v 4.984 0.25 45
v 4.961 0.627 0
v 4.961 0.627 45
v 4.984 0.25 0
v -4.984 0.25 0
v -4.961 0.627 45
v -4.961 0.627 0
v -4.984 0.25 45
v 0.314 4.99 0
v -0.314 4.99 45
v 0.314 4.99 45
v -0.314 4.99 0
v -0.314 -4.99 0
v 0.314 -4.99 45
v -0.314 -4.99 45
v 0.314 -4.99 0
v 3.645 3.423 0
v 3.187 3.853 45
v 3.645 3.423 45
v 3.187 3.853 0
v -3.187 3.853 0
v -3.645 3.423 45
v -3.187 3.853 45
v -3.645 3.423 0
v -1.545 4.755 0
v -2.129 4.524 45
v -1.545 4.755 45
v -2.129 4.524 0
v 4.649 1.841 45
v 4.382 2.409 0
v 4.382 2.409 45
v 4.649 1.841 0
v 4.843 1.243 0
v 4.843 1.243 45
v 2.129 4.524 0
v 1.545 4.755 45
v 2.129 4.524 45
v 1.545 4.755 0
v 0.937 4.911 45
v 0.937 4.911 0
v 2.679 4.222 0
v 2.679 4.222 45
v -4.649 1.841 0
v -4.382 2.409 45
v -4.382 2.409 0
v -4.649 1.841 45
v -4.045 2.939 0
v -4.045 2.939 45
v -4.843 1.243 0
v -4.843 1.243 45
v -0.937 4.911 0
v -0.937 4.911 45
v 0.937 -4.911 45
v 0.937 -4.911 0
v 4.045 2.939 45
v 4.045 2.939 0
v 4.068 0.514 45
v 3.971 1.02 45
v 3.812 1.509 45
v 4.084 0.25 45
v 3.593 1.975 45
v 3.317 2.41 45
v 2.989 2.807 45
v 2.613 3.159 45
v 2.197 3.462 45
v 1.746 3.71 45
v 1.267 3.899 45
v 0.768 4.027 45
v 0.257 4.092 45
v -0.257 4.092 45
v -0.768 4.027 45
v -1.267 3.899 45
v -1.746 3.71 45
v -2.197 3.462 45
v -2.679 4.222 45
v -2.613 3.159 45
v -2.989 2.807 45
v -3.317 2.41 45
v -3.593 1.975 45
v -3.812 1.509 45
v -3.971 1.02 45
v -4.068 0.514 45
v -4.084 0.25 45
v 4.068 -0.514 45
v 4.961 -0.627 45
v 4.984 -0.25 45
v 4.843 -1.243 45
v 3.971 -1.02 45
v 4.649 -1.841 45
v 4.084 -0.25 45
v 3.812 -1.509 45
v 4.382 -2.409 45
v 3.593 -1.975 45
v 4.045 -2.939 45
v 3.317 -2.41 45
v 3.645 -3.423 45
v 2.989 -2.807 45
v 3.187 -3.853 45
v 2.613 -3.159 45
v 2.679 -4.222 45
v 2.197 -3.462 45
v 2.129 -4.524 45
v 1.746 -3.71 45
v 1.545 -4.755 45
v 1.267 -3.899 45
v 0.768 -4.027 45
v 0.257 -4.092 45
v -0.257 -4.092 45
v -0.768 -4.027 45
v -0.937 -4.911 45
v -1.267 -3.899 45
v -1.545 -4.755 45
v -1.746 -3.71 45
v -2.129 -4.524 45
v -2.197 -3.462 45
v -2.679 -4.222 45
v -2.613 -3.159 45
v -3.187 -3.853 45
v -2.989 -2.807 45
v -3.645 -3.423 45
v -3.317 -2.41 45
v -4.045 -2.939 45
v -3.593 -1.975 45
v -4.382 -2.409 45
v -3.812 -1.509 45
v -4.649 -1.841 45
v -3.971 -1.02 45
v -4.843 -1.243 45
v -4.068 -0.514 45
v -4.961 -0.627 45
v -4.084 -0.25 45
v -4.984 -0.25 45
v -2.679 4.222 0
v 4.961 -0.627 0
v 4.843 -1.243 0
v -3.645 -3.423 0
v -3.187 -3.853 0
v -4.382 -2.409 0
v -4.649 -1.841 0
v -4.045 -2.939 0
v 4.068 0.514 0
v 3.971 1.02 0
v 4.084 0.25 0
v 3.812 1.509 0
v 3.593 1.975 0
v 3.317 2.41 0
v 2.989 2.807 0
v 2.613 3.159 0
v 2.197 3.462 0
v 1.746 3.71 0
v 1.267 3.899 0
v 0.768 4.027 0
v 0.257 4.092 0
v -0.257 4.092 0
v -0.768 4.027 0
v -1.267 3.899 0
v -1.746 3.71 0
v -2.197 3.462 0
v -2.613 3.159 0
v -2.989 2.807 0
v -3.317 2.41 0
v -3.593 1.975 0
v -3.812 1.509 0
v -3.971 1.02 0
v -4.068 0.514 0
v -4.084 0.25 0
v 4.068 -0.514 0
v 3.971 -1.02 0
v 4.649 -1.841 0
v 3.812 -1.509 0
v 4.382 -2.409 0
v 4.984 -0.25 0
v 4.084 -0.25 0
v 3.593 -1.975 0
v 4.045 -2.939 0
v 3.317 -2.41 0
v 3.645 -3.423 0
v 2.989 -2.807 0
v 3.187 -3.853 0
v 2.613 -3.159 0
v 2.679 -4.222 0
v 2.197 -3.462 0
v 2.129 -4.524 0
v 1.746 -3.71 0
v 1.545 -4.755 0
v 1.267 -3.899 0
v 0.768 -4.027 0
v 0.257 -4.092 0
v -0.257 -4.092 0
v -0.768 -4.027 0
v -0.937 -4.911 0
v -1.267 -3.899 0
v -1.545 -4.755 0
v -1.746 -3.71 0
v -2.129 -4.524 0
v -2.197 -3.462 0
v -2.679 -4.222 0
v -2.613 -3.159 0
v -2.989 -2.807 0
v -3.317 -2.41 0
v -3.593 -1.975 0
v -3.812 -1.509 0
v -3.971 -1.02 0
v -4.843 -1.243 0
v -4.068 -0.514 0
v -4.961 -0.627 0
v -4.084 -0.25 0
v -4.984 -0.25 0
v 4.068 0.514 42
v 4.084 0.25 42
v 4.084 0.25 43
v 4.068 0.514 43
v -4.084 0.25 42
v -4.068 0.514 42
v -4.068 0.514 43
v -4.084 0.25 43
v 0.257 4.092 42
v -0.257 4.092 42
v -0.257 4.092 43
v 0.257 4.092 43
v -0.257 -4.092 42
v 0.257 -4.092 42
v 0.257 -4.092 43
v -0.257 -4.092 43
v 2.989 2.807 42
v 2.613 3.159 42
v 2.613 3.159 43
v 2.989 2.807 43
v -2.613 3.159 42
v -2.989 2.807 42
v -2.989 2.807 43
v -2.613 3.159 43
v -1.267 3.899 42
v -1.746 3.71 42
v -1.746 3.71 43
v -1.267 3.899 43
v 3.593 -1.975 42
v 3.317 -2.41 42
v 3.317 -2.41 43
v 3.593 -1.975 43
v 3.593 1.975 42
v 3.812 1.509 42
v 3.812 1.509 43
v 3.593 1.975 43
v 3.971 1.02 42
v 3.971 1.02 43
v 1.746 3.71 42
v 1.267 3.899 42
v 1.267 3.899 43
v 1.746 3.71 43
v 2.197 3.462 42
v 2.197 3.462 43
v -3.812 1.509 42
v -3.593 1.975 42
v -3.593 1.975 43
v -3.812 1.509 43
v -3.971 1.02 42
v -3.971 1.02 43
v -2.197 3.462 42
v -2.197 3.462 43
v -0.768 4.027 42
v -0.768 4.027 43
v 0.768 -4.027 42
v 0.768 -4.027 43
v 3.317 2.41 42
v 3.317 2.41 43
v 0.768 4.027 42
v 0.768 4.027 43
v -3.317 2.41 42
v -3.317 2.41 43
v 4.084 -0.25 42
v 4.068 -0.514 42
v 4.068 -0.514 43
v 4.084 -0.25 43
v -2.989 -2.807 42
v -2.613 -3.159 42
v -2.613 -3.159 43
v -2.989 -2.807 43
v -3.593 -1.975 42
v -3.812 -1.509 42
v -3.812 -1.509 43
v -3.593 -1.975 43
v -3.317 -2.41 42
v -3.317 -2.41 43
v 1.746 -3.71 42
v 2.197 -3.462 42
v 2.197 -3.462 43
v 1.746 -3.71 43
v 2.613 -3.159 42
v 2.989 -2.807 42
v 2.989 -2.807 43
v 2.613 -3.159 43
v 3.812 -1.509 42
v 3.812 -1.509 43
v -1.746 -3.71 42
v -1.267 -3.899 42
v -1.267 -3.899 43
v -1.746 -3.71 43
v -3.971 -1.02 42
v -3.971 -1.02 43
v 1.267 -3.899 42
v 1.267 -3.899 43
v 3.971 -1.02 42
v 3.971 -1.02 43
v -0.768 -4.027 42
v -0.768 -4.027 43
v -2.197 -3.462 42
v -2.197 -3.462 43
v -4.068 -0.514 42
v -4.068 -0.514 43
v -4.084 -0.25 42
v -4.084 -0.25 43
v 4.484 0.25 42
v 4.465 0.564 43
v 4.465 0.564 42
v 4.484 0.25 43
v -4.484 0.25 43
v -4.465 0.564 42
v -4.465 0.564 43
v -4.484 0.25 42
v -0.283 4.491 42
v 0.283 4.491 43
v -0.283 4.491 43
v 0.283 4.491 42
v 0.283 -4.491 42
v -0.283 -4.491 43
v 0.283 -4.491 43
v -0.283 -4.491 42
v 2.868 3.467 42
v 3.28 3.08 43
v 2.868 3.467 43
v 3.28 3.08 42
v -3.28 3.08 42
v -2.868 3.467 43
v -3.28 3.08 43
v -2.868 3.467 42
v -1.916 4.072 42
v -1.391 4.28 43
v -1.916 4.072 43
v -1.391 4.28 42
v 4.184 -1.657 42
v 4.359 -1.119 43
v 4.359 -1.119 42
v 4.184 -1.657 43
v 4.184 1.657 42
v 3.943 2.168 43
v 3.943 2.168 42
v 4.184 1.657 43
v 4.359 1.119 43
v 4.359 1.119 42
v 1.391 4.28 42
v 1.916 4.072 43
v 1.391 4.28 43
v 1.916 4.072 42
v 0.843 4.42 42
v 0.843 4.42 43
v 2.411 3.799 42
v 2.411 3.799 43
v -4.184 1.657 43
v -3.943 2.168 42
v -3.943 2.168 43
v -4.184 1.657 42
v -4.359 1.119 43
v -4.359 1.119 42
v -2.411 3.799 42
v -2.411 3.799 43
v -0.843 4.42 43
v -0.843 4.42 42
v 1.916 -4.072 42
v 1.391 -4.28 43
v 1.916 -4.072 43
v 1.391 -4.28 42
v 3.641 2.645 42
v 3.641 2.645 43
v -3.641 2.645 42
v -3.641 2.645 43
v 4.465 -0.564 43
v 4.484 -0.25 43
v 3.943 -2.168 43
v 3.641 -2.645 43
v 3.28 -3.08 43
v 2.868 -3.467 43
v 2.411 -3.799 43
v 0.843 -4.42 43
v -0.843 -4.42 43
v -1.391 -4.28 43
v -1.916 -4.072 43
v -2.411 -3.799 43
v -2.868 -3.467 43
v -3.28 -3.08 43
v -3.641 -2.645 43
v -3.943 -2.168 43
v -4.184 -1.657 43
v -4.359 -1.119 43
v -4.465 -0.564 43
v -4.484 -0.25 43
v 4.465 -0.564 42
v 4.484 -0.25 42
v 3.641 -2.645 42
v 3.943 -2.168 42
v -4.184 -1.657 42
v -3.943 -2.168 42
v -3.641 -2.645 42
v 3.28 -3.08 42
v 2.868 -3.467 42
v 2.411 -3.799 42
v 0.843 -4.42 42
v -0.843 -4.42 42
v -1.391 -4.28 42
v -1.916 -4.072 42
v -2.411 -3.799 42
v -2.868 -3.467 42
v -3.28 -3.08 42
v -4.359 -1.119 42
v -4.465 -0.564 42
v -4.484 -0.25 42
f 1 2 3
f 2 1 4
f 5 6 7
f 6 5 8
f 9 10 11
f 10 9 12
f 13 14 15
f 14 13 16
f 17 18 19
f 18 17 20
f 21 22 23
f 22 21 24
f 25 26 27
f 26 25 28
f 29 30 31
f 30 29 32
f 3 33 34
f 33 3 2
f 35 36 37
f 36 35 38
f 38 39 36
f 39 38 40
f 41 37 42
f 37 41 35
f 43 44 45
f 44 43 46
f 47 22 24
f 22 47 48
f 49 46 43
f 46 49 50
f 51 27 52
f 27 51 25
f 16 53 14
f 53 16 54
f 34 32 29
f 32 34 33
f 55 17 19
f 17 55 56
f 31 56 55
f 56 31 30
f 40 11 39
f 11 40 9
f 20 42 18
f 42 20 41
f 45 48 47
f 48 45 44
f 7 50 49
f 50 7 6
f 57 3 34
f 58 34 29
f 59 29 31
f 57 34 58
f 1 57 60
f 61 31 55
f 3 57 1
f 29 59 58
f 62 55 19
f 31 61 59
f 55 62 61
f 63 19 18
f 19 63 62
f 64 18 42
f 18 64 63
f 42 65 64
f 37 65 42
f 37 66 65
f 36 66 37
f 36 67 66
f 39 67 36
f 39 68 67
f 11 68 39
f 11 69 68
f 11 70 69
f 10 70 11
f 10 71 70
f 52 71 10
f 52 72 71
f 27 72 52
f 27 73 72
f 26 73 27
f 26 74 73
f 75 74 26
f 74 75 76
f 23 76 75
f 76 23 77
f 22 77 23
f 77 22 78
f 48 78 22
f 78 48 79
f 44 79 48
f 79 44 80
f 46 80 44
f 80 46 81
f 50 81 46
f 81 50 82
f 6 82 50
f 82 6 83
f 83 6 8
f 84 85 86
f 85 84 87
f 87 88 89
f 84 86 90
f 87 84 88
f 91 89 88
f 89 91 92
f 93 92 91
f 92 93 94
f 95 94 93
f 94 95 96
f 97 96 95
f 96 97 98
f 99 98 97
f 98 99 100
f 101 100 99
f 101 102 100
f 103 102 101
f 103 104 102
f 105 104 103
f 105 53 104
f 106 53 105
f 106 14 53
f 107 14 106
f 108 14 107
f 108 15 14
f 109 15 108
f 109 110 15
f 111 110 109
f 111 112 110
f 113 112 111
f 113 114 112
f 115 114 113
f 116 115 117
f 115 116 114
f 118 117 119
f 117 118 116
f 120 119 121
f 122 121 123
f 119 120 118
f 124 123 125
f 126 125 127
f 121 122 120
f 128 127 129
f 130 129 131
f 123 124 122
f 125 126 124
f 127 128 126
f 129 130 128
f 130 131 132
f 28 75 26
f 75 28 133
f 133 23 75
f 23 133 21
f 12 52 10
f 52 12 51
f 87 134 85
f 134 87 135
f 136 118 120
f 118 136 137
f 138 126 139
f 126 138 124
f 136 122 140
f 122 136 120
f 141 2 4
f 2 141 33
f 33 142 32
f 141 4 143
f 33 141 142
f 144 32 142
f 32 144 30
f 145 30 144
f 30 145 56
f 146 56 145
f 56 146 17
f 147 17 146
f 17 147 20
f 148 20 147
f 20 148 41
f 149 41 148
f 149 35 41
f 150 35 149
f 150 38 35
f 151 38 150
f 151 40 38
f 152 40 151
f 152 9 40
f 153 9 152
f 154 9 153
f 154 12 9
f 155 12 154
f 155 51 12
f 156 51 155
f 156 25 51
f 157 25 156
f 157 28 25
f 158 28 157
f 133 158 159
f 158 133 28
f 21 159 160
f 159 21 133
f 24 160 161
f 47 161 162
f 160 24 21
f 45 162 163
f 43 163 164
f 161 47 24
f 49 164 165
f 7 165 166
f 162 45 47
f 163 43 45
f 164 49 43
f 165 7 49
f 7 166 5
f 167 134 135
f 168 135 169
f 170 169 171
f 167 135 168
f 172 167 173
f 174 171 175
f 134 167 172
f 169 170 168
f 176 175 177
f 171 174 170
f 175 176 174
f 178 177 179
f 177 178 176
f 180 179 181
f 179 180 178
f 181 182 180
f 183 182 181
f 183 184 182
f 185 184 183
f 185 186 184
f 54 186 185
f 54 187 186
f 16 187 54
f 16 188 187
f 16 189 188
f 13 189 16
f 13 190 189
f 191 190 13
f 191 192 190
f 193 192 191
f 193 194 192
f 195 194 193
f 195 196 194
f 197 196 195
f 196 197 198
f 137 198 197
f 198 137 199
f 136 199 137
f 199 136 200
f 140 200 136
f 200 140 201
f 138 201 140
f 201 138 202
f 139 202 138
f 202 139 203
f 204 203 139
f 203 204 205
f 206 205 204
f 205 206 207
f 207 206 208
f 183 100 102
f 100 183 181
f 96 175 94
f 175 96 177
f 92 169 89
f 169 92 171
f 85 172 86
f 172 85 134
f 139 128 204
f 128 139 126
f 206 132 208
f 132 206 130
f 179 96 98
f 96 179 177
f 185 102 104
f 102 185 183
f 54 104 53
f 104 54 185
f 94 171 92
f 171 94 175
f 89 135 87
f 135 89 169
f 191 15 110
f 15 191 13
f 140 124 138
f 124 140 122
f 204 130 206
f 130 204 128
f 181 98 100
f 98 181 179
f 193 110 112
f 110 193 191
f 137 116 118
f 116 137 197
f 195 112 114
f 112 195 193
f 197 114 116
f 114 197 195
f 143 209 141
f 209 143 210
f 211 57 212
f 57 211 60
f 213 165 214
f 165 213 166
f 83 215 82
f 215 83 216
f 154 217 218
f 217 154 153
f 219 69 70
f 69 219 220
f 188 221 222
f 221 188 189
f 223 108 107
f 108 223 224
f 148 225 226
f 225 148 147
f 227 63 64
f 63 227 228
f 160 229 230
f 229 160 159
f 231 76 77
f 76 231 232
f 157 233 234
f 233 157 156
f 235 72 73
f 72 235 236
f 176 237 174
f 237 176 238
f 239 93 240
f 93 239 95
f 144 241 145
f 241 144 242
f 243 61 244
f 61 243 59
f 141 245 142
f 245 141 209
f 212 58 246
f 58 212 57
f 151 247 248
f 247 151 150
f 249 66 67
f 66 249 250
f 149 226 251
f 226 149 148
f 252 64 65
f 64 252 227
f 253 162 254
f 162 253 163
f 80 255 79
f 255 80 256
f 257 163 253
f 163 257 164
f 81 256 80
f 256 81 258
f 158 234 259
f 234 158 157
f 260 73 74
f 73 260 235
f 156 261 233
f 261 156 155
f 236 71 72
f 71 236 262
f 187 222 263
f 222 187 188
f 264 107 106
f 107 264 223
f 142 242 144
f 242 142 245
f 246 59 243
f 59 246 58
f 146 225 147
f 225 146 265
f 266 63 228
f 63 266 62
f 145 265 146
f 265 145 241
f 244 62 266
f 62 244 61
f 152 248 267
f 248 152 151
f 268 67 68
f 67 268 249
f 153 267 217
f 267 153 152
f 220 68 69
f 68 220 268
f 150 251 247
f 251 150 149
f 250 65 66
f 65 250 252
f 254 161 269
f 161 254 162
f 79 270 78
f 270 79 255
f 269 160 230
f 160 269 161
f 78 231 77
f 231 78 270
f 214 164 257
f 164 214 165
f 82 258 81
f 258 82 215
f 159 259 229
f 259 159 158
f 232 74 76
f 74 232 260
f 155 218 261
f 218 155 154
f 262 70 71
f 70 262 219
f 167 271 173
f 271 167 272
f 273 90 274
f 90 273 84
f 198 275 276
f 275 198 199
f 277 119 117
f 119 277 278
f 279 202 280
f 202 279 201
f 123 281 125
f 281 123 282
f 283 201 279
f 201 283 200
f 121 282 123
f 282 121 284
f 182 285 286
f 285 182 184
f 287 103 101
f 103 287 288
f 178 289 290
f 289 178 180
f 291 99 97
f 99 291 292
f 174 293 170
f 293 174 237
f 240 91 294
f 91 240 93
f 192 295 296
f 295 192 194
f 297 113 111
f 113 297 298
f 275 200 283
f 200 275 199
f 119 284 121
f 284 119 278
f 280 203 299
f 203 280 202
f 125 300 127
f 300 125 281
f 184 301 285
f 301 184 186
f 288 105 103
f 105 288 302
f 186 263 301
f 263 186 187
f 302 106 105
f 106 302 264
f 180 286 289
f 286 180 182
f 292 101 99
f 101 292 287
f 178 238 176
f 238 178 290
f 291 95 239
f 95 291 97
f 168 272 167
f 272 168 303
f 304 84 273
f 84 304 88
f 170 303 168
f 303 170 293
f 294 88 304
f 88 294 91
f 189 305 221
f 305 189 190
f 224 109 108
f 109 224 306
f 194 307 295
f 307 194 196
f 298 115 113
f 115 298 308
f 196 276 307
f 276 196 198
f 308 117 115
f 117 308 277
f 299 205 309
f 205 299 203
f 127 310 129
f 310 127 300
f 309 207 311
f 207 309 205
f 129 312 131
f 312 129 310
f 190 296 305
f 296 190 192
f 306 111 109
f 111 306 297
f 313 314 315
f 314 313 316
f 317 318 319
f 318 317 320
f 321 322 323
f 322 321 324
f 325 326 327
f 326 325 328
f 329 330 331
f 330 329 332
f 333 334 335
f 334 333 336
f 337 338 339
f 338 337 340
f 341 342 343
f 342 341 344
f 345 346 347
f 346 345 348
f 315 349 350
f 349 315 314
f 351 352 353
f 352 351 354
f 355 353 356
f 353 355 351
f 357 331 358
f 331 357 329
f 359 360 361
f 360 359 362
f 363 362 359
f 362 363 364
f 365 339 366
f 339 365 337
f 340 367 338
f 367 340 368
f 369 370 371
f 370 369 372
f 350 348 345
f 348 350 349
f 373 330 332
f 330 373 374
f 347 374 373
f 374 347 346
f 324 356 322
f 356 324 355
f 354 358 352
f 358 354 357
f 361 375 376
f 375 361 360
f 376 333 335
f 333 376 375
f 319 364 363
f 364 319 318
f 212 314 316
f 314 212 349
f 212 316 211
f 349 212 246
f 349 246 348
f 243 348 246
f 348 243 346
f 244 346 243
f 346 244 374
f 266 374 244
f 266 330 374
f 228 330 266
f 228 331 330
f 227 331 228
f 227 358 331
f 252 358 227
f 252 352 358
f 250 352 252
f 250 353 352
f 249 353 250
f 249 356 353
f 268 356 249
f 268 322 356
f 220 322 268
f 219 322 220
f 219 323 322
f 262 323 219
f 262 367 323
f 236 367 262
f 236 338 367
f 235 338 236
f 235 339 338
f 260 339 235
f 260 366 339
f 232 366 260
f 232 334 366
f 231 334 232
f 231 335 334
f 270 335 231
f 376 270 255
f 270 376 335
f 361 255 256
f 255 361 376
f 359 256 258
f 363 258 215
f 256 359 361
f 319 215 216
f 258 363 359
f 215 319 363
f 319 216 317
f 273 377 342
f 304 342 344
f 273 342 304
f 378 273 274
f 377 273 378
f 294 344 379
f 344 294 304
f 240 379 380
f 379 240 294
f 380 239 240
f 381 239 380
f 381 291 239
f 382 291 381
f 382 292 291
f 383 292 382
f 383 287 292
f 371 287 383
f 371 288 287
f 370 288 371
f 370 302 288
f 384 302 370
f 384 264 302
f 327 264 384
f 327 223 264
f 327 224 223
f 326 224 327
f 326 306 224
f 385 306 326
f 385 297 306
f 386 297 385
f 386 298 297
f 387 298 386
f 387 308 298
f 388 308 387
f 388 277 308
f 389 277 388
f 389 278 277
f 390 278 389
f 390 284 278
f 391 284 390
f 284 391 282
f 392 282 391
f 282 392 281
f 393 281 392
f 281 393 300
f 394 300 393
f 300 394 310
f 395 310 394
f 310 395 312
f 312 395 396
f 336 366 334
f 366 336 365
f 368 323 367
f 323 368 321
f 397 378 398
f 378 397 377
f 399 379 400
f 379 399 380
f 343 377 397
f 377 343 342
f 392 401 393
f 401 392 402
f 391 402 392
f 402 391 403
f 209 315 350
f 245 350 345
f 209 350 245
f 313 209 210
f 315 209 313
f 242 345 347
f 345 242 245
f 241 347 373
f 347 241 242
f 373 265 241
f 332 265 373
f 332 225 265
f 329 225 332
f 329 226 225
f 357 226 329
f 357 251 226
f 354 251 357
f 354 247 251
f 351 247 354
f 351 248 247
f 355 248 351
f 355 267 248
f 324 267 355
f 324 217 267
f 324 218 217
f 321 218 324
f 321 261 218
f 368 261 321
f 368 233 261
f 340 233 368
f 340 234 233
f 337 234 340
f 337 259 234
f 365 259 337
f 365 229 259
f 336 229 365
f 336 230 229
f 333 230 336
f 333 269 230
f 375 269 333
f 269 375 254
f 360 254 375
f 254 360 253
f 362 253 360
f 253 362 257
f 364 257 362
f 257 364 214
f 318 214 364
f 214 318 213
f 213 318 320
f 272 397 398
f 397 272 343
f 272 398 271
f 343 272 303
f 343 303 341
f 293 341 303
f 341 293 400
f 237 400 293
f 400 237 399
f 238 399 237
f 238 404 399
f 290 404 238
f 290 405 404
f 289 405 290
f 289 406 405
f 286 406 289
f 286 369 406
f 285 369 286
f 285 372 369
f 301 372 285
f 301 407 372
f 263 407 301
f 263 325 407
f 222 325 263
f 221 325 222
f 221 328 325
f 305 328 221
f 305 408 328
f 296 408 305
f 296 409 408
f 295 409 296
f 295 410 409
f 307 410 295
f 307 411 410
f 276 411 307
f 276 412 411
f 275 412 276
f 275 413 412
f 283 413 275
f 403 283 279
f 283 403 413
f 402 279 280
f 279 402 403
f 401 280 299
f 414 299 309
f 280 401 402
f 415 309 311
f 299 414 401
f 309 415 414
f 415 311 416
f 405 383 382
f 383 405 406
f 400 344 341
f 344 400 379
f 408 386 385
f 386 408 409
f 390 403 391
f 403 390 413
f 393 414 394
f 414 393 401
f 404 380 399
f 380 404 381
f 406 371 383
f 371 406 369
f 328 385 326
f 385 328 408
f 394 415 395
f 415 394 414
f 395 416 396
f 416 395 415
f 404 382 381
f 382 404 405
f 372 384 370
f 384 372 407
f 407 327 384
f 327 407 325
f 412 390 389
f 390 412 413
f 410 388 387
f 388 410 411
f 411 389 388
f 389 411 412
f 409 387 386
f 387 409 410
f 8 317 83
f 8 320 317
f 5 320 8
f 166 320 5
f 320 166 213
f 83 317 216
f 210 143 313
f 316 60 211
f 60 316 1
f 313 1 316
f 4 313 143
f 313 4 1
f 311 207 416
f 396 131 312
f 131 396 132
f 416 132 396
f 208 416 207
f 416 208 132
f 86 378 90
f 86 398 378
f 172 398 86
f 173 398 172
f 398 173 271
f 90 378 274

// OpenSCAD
// file: MRAKOMER4_HOLDER02A.scad
$fn=50;

senzor_prumer=8.2;
senzor_prumer_s_rantlem=9;

vyska_drzaku=45;

pruchodka_prumer=10; //velka ma 14







MRAKOMER4_HOLDER02A();

module MRAKOMER4_HOLDER02A()
{
difference() {
    
union() { 
    
    translate([0,0,vyska_drzaku/2]) 
 cylinder(h=vyska_drzaku, r=pruchodka_prumer/2, center=true);

}
   translate([0,0,vyska_drzaku/2]) 
cylinder(h=vyska_drzaku+0.1, r=senzor_prumer/2, center=true);
  translate([0,0,vyska_drzaku-1/2-2]) 
cylinder(h=1, r=senzor_prumer_s_rantlem/2, center=true);

translate([0,0,vyska_drzaku/2]) 
  cube([pruchodka_prumer+2,0.5,vyska_drzaku+2],center=true); 
    }
   }
  
   
  
// main file
use <../src/MRAKOMER4_HOLDER02A.scad>

$fn=50;

MRAKOMER4_HOLDER02A();
